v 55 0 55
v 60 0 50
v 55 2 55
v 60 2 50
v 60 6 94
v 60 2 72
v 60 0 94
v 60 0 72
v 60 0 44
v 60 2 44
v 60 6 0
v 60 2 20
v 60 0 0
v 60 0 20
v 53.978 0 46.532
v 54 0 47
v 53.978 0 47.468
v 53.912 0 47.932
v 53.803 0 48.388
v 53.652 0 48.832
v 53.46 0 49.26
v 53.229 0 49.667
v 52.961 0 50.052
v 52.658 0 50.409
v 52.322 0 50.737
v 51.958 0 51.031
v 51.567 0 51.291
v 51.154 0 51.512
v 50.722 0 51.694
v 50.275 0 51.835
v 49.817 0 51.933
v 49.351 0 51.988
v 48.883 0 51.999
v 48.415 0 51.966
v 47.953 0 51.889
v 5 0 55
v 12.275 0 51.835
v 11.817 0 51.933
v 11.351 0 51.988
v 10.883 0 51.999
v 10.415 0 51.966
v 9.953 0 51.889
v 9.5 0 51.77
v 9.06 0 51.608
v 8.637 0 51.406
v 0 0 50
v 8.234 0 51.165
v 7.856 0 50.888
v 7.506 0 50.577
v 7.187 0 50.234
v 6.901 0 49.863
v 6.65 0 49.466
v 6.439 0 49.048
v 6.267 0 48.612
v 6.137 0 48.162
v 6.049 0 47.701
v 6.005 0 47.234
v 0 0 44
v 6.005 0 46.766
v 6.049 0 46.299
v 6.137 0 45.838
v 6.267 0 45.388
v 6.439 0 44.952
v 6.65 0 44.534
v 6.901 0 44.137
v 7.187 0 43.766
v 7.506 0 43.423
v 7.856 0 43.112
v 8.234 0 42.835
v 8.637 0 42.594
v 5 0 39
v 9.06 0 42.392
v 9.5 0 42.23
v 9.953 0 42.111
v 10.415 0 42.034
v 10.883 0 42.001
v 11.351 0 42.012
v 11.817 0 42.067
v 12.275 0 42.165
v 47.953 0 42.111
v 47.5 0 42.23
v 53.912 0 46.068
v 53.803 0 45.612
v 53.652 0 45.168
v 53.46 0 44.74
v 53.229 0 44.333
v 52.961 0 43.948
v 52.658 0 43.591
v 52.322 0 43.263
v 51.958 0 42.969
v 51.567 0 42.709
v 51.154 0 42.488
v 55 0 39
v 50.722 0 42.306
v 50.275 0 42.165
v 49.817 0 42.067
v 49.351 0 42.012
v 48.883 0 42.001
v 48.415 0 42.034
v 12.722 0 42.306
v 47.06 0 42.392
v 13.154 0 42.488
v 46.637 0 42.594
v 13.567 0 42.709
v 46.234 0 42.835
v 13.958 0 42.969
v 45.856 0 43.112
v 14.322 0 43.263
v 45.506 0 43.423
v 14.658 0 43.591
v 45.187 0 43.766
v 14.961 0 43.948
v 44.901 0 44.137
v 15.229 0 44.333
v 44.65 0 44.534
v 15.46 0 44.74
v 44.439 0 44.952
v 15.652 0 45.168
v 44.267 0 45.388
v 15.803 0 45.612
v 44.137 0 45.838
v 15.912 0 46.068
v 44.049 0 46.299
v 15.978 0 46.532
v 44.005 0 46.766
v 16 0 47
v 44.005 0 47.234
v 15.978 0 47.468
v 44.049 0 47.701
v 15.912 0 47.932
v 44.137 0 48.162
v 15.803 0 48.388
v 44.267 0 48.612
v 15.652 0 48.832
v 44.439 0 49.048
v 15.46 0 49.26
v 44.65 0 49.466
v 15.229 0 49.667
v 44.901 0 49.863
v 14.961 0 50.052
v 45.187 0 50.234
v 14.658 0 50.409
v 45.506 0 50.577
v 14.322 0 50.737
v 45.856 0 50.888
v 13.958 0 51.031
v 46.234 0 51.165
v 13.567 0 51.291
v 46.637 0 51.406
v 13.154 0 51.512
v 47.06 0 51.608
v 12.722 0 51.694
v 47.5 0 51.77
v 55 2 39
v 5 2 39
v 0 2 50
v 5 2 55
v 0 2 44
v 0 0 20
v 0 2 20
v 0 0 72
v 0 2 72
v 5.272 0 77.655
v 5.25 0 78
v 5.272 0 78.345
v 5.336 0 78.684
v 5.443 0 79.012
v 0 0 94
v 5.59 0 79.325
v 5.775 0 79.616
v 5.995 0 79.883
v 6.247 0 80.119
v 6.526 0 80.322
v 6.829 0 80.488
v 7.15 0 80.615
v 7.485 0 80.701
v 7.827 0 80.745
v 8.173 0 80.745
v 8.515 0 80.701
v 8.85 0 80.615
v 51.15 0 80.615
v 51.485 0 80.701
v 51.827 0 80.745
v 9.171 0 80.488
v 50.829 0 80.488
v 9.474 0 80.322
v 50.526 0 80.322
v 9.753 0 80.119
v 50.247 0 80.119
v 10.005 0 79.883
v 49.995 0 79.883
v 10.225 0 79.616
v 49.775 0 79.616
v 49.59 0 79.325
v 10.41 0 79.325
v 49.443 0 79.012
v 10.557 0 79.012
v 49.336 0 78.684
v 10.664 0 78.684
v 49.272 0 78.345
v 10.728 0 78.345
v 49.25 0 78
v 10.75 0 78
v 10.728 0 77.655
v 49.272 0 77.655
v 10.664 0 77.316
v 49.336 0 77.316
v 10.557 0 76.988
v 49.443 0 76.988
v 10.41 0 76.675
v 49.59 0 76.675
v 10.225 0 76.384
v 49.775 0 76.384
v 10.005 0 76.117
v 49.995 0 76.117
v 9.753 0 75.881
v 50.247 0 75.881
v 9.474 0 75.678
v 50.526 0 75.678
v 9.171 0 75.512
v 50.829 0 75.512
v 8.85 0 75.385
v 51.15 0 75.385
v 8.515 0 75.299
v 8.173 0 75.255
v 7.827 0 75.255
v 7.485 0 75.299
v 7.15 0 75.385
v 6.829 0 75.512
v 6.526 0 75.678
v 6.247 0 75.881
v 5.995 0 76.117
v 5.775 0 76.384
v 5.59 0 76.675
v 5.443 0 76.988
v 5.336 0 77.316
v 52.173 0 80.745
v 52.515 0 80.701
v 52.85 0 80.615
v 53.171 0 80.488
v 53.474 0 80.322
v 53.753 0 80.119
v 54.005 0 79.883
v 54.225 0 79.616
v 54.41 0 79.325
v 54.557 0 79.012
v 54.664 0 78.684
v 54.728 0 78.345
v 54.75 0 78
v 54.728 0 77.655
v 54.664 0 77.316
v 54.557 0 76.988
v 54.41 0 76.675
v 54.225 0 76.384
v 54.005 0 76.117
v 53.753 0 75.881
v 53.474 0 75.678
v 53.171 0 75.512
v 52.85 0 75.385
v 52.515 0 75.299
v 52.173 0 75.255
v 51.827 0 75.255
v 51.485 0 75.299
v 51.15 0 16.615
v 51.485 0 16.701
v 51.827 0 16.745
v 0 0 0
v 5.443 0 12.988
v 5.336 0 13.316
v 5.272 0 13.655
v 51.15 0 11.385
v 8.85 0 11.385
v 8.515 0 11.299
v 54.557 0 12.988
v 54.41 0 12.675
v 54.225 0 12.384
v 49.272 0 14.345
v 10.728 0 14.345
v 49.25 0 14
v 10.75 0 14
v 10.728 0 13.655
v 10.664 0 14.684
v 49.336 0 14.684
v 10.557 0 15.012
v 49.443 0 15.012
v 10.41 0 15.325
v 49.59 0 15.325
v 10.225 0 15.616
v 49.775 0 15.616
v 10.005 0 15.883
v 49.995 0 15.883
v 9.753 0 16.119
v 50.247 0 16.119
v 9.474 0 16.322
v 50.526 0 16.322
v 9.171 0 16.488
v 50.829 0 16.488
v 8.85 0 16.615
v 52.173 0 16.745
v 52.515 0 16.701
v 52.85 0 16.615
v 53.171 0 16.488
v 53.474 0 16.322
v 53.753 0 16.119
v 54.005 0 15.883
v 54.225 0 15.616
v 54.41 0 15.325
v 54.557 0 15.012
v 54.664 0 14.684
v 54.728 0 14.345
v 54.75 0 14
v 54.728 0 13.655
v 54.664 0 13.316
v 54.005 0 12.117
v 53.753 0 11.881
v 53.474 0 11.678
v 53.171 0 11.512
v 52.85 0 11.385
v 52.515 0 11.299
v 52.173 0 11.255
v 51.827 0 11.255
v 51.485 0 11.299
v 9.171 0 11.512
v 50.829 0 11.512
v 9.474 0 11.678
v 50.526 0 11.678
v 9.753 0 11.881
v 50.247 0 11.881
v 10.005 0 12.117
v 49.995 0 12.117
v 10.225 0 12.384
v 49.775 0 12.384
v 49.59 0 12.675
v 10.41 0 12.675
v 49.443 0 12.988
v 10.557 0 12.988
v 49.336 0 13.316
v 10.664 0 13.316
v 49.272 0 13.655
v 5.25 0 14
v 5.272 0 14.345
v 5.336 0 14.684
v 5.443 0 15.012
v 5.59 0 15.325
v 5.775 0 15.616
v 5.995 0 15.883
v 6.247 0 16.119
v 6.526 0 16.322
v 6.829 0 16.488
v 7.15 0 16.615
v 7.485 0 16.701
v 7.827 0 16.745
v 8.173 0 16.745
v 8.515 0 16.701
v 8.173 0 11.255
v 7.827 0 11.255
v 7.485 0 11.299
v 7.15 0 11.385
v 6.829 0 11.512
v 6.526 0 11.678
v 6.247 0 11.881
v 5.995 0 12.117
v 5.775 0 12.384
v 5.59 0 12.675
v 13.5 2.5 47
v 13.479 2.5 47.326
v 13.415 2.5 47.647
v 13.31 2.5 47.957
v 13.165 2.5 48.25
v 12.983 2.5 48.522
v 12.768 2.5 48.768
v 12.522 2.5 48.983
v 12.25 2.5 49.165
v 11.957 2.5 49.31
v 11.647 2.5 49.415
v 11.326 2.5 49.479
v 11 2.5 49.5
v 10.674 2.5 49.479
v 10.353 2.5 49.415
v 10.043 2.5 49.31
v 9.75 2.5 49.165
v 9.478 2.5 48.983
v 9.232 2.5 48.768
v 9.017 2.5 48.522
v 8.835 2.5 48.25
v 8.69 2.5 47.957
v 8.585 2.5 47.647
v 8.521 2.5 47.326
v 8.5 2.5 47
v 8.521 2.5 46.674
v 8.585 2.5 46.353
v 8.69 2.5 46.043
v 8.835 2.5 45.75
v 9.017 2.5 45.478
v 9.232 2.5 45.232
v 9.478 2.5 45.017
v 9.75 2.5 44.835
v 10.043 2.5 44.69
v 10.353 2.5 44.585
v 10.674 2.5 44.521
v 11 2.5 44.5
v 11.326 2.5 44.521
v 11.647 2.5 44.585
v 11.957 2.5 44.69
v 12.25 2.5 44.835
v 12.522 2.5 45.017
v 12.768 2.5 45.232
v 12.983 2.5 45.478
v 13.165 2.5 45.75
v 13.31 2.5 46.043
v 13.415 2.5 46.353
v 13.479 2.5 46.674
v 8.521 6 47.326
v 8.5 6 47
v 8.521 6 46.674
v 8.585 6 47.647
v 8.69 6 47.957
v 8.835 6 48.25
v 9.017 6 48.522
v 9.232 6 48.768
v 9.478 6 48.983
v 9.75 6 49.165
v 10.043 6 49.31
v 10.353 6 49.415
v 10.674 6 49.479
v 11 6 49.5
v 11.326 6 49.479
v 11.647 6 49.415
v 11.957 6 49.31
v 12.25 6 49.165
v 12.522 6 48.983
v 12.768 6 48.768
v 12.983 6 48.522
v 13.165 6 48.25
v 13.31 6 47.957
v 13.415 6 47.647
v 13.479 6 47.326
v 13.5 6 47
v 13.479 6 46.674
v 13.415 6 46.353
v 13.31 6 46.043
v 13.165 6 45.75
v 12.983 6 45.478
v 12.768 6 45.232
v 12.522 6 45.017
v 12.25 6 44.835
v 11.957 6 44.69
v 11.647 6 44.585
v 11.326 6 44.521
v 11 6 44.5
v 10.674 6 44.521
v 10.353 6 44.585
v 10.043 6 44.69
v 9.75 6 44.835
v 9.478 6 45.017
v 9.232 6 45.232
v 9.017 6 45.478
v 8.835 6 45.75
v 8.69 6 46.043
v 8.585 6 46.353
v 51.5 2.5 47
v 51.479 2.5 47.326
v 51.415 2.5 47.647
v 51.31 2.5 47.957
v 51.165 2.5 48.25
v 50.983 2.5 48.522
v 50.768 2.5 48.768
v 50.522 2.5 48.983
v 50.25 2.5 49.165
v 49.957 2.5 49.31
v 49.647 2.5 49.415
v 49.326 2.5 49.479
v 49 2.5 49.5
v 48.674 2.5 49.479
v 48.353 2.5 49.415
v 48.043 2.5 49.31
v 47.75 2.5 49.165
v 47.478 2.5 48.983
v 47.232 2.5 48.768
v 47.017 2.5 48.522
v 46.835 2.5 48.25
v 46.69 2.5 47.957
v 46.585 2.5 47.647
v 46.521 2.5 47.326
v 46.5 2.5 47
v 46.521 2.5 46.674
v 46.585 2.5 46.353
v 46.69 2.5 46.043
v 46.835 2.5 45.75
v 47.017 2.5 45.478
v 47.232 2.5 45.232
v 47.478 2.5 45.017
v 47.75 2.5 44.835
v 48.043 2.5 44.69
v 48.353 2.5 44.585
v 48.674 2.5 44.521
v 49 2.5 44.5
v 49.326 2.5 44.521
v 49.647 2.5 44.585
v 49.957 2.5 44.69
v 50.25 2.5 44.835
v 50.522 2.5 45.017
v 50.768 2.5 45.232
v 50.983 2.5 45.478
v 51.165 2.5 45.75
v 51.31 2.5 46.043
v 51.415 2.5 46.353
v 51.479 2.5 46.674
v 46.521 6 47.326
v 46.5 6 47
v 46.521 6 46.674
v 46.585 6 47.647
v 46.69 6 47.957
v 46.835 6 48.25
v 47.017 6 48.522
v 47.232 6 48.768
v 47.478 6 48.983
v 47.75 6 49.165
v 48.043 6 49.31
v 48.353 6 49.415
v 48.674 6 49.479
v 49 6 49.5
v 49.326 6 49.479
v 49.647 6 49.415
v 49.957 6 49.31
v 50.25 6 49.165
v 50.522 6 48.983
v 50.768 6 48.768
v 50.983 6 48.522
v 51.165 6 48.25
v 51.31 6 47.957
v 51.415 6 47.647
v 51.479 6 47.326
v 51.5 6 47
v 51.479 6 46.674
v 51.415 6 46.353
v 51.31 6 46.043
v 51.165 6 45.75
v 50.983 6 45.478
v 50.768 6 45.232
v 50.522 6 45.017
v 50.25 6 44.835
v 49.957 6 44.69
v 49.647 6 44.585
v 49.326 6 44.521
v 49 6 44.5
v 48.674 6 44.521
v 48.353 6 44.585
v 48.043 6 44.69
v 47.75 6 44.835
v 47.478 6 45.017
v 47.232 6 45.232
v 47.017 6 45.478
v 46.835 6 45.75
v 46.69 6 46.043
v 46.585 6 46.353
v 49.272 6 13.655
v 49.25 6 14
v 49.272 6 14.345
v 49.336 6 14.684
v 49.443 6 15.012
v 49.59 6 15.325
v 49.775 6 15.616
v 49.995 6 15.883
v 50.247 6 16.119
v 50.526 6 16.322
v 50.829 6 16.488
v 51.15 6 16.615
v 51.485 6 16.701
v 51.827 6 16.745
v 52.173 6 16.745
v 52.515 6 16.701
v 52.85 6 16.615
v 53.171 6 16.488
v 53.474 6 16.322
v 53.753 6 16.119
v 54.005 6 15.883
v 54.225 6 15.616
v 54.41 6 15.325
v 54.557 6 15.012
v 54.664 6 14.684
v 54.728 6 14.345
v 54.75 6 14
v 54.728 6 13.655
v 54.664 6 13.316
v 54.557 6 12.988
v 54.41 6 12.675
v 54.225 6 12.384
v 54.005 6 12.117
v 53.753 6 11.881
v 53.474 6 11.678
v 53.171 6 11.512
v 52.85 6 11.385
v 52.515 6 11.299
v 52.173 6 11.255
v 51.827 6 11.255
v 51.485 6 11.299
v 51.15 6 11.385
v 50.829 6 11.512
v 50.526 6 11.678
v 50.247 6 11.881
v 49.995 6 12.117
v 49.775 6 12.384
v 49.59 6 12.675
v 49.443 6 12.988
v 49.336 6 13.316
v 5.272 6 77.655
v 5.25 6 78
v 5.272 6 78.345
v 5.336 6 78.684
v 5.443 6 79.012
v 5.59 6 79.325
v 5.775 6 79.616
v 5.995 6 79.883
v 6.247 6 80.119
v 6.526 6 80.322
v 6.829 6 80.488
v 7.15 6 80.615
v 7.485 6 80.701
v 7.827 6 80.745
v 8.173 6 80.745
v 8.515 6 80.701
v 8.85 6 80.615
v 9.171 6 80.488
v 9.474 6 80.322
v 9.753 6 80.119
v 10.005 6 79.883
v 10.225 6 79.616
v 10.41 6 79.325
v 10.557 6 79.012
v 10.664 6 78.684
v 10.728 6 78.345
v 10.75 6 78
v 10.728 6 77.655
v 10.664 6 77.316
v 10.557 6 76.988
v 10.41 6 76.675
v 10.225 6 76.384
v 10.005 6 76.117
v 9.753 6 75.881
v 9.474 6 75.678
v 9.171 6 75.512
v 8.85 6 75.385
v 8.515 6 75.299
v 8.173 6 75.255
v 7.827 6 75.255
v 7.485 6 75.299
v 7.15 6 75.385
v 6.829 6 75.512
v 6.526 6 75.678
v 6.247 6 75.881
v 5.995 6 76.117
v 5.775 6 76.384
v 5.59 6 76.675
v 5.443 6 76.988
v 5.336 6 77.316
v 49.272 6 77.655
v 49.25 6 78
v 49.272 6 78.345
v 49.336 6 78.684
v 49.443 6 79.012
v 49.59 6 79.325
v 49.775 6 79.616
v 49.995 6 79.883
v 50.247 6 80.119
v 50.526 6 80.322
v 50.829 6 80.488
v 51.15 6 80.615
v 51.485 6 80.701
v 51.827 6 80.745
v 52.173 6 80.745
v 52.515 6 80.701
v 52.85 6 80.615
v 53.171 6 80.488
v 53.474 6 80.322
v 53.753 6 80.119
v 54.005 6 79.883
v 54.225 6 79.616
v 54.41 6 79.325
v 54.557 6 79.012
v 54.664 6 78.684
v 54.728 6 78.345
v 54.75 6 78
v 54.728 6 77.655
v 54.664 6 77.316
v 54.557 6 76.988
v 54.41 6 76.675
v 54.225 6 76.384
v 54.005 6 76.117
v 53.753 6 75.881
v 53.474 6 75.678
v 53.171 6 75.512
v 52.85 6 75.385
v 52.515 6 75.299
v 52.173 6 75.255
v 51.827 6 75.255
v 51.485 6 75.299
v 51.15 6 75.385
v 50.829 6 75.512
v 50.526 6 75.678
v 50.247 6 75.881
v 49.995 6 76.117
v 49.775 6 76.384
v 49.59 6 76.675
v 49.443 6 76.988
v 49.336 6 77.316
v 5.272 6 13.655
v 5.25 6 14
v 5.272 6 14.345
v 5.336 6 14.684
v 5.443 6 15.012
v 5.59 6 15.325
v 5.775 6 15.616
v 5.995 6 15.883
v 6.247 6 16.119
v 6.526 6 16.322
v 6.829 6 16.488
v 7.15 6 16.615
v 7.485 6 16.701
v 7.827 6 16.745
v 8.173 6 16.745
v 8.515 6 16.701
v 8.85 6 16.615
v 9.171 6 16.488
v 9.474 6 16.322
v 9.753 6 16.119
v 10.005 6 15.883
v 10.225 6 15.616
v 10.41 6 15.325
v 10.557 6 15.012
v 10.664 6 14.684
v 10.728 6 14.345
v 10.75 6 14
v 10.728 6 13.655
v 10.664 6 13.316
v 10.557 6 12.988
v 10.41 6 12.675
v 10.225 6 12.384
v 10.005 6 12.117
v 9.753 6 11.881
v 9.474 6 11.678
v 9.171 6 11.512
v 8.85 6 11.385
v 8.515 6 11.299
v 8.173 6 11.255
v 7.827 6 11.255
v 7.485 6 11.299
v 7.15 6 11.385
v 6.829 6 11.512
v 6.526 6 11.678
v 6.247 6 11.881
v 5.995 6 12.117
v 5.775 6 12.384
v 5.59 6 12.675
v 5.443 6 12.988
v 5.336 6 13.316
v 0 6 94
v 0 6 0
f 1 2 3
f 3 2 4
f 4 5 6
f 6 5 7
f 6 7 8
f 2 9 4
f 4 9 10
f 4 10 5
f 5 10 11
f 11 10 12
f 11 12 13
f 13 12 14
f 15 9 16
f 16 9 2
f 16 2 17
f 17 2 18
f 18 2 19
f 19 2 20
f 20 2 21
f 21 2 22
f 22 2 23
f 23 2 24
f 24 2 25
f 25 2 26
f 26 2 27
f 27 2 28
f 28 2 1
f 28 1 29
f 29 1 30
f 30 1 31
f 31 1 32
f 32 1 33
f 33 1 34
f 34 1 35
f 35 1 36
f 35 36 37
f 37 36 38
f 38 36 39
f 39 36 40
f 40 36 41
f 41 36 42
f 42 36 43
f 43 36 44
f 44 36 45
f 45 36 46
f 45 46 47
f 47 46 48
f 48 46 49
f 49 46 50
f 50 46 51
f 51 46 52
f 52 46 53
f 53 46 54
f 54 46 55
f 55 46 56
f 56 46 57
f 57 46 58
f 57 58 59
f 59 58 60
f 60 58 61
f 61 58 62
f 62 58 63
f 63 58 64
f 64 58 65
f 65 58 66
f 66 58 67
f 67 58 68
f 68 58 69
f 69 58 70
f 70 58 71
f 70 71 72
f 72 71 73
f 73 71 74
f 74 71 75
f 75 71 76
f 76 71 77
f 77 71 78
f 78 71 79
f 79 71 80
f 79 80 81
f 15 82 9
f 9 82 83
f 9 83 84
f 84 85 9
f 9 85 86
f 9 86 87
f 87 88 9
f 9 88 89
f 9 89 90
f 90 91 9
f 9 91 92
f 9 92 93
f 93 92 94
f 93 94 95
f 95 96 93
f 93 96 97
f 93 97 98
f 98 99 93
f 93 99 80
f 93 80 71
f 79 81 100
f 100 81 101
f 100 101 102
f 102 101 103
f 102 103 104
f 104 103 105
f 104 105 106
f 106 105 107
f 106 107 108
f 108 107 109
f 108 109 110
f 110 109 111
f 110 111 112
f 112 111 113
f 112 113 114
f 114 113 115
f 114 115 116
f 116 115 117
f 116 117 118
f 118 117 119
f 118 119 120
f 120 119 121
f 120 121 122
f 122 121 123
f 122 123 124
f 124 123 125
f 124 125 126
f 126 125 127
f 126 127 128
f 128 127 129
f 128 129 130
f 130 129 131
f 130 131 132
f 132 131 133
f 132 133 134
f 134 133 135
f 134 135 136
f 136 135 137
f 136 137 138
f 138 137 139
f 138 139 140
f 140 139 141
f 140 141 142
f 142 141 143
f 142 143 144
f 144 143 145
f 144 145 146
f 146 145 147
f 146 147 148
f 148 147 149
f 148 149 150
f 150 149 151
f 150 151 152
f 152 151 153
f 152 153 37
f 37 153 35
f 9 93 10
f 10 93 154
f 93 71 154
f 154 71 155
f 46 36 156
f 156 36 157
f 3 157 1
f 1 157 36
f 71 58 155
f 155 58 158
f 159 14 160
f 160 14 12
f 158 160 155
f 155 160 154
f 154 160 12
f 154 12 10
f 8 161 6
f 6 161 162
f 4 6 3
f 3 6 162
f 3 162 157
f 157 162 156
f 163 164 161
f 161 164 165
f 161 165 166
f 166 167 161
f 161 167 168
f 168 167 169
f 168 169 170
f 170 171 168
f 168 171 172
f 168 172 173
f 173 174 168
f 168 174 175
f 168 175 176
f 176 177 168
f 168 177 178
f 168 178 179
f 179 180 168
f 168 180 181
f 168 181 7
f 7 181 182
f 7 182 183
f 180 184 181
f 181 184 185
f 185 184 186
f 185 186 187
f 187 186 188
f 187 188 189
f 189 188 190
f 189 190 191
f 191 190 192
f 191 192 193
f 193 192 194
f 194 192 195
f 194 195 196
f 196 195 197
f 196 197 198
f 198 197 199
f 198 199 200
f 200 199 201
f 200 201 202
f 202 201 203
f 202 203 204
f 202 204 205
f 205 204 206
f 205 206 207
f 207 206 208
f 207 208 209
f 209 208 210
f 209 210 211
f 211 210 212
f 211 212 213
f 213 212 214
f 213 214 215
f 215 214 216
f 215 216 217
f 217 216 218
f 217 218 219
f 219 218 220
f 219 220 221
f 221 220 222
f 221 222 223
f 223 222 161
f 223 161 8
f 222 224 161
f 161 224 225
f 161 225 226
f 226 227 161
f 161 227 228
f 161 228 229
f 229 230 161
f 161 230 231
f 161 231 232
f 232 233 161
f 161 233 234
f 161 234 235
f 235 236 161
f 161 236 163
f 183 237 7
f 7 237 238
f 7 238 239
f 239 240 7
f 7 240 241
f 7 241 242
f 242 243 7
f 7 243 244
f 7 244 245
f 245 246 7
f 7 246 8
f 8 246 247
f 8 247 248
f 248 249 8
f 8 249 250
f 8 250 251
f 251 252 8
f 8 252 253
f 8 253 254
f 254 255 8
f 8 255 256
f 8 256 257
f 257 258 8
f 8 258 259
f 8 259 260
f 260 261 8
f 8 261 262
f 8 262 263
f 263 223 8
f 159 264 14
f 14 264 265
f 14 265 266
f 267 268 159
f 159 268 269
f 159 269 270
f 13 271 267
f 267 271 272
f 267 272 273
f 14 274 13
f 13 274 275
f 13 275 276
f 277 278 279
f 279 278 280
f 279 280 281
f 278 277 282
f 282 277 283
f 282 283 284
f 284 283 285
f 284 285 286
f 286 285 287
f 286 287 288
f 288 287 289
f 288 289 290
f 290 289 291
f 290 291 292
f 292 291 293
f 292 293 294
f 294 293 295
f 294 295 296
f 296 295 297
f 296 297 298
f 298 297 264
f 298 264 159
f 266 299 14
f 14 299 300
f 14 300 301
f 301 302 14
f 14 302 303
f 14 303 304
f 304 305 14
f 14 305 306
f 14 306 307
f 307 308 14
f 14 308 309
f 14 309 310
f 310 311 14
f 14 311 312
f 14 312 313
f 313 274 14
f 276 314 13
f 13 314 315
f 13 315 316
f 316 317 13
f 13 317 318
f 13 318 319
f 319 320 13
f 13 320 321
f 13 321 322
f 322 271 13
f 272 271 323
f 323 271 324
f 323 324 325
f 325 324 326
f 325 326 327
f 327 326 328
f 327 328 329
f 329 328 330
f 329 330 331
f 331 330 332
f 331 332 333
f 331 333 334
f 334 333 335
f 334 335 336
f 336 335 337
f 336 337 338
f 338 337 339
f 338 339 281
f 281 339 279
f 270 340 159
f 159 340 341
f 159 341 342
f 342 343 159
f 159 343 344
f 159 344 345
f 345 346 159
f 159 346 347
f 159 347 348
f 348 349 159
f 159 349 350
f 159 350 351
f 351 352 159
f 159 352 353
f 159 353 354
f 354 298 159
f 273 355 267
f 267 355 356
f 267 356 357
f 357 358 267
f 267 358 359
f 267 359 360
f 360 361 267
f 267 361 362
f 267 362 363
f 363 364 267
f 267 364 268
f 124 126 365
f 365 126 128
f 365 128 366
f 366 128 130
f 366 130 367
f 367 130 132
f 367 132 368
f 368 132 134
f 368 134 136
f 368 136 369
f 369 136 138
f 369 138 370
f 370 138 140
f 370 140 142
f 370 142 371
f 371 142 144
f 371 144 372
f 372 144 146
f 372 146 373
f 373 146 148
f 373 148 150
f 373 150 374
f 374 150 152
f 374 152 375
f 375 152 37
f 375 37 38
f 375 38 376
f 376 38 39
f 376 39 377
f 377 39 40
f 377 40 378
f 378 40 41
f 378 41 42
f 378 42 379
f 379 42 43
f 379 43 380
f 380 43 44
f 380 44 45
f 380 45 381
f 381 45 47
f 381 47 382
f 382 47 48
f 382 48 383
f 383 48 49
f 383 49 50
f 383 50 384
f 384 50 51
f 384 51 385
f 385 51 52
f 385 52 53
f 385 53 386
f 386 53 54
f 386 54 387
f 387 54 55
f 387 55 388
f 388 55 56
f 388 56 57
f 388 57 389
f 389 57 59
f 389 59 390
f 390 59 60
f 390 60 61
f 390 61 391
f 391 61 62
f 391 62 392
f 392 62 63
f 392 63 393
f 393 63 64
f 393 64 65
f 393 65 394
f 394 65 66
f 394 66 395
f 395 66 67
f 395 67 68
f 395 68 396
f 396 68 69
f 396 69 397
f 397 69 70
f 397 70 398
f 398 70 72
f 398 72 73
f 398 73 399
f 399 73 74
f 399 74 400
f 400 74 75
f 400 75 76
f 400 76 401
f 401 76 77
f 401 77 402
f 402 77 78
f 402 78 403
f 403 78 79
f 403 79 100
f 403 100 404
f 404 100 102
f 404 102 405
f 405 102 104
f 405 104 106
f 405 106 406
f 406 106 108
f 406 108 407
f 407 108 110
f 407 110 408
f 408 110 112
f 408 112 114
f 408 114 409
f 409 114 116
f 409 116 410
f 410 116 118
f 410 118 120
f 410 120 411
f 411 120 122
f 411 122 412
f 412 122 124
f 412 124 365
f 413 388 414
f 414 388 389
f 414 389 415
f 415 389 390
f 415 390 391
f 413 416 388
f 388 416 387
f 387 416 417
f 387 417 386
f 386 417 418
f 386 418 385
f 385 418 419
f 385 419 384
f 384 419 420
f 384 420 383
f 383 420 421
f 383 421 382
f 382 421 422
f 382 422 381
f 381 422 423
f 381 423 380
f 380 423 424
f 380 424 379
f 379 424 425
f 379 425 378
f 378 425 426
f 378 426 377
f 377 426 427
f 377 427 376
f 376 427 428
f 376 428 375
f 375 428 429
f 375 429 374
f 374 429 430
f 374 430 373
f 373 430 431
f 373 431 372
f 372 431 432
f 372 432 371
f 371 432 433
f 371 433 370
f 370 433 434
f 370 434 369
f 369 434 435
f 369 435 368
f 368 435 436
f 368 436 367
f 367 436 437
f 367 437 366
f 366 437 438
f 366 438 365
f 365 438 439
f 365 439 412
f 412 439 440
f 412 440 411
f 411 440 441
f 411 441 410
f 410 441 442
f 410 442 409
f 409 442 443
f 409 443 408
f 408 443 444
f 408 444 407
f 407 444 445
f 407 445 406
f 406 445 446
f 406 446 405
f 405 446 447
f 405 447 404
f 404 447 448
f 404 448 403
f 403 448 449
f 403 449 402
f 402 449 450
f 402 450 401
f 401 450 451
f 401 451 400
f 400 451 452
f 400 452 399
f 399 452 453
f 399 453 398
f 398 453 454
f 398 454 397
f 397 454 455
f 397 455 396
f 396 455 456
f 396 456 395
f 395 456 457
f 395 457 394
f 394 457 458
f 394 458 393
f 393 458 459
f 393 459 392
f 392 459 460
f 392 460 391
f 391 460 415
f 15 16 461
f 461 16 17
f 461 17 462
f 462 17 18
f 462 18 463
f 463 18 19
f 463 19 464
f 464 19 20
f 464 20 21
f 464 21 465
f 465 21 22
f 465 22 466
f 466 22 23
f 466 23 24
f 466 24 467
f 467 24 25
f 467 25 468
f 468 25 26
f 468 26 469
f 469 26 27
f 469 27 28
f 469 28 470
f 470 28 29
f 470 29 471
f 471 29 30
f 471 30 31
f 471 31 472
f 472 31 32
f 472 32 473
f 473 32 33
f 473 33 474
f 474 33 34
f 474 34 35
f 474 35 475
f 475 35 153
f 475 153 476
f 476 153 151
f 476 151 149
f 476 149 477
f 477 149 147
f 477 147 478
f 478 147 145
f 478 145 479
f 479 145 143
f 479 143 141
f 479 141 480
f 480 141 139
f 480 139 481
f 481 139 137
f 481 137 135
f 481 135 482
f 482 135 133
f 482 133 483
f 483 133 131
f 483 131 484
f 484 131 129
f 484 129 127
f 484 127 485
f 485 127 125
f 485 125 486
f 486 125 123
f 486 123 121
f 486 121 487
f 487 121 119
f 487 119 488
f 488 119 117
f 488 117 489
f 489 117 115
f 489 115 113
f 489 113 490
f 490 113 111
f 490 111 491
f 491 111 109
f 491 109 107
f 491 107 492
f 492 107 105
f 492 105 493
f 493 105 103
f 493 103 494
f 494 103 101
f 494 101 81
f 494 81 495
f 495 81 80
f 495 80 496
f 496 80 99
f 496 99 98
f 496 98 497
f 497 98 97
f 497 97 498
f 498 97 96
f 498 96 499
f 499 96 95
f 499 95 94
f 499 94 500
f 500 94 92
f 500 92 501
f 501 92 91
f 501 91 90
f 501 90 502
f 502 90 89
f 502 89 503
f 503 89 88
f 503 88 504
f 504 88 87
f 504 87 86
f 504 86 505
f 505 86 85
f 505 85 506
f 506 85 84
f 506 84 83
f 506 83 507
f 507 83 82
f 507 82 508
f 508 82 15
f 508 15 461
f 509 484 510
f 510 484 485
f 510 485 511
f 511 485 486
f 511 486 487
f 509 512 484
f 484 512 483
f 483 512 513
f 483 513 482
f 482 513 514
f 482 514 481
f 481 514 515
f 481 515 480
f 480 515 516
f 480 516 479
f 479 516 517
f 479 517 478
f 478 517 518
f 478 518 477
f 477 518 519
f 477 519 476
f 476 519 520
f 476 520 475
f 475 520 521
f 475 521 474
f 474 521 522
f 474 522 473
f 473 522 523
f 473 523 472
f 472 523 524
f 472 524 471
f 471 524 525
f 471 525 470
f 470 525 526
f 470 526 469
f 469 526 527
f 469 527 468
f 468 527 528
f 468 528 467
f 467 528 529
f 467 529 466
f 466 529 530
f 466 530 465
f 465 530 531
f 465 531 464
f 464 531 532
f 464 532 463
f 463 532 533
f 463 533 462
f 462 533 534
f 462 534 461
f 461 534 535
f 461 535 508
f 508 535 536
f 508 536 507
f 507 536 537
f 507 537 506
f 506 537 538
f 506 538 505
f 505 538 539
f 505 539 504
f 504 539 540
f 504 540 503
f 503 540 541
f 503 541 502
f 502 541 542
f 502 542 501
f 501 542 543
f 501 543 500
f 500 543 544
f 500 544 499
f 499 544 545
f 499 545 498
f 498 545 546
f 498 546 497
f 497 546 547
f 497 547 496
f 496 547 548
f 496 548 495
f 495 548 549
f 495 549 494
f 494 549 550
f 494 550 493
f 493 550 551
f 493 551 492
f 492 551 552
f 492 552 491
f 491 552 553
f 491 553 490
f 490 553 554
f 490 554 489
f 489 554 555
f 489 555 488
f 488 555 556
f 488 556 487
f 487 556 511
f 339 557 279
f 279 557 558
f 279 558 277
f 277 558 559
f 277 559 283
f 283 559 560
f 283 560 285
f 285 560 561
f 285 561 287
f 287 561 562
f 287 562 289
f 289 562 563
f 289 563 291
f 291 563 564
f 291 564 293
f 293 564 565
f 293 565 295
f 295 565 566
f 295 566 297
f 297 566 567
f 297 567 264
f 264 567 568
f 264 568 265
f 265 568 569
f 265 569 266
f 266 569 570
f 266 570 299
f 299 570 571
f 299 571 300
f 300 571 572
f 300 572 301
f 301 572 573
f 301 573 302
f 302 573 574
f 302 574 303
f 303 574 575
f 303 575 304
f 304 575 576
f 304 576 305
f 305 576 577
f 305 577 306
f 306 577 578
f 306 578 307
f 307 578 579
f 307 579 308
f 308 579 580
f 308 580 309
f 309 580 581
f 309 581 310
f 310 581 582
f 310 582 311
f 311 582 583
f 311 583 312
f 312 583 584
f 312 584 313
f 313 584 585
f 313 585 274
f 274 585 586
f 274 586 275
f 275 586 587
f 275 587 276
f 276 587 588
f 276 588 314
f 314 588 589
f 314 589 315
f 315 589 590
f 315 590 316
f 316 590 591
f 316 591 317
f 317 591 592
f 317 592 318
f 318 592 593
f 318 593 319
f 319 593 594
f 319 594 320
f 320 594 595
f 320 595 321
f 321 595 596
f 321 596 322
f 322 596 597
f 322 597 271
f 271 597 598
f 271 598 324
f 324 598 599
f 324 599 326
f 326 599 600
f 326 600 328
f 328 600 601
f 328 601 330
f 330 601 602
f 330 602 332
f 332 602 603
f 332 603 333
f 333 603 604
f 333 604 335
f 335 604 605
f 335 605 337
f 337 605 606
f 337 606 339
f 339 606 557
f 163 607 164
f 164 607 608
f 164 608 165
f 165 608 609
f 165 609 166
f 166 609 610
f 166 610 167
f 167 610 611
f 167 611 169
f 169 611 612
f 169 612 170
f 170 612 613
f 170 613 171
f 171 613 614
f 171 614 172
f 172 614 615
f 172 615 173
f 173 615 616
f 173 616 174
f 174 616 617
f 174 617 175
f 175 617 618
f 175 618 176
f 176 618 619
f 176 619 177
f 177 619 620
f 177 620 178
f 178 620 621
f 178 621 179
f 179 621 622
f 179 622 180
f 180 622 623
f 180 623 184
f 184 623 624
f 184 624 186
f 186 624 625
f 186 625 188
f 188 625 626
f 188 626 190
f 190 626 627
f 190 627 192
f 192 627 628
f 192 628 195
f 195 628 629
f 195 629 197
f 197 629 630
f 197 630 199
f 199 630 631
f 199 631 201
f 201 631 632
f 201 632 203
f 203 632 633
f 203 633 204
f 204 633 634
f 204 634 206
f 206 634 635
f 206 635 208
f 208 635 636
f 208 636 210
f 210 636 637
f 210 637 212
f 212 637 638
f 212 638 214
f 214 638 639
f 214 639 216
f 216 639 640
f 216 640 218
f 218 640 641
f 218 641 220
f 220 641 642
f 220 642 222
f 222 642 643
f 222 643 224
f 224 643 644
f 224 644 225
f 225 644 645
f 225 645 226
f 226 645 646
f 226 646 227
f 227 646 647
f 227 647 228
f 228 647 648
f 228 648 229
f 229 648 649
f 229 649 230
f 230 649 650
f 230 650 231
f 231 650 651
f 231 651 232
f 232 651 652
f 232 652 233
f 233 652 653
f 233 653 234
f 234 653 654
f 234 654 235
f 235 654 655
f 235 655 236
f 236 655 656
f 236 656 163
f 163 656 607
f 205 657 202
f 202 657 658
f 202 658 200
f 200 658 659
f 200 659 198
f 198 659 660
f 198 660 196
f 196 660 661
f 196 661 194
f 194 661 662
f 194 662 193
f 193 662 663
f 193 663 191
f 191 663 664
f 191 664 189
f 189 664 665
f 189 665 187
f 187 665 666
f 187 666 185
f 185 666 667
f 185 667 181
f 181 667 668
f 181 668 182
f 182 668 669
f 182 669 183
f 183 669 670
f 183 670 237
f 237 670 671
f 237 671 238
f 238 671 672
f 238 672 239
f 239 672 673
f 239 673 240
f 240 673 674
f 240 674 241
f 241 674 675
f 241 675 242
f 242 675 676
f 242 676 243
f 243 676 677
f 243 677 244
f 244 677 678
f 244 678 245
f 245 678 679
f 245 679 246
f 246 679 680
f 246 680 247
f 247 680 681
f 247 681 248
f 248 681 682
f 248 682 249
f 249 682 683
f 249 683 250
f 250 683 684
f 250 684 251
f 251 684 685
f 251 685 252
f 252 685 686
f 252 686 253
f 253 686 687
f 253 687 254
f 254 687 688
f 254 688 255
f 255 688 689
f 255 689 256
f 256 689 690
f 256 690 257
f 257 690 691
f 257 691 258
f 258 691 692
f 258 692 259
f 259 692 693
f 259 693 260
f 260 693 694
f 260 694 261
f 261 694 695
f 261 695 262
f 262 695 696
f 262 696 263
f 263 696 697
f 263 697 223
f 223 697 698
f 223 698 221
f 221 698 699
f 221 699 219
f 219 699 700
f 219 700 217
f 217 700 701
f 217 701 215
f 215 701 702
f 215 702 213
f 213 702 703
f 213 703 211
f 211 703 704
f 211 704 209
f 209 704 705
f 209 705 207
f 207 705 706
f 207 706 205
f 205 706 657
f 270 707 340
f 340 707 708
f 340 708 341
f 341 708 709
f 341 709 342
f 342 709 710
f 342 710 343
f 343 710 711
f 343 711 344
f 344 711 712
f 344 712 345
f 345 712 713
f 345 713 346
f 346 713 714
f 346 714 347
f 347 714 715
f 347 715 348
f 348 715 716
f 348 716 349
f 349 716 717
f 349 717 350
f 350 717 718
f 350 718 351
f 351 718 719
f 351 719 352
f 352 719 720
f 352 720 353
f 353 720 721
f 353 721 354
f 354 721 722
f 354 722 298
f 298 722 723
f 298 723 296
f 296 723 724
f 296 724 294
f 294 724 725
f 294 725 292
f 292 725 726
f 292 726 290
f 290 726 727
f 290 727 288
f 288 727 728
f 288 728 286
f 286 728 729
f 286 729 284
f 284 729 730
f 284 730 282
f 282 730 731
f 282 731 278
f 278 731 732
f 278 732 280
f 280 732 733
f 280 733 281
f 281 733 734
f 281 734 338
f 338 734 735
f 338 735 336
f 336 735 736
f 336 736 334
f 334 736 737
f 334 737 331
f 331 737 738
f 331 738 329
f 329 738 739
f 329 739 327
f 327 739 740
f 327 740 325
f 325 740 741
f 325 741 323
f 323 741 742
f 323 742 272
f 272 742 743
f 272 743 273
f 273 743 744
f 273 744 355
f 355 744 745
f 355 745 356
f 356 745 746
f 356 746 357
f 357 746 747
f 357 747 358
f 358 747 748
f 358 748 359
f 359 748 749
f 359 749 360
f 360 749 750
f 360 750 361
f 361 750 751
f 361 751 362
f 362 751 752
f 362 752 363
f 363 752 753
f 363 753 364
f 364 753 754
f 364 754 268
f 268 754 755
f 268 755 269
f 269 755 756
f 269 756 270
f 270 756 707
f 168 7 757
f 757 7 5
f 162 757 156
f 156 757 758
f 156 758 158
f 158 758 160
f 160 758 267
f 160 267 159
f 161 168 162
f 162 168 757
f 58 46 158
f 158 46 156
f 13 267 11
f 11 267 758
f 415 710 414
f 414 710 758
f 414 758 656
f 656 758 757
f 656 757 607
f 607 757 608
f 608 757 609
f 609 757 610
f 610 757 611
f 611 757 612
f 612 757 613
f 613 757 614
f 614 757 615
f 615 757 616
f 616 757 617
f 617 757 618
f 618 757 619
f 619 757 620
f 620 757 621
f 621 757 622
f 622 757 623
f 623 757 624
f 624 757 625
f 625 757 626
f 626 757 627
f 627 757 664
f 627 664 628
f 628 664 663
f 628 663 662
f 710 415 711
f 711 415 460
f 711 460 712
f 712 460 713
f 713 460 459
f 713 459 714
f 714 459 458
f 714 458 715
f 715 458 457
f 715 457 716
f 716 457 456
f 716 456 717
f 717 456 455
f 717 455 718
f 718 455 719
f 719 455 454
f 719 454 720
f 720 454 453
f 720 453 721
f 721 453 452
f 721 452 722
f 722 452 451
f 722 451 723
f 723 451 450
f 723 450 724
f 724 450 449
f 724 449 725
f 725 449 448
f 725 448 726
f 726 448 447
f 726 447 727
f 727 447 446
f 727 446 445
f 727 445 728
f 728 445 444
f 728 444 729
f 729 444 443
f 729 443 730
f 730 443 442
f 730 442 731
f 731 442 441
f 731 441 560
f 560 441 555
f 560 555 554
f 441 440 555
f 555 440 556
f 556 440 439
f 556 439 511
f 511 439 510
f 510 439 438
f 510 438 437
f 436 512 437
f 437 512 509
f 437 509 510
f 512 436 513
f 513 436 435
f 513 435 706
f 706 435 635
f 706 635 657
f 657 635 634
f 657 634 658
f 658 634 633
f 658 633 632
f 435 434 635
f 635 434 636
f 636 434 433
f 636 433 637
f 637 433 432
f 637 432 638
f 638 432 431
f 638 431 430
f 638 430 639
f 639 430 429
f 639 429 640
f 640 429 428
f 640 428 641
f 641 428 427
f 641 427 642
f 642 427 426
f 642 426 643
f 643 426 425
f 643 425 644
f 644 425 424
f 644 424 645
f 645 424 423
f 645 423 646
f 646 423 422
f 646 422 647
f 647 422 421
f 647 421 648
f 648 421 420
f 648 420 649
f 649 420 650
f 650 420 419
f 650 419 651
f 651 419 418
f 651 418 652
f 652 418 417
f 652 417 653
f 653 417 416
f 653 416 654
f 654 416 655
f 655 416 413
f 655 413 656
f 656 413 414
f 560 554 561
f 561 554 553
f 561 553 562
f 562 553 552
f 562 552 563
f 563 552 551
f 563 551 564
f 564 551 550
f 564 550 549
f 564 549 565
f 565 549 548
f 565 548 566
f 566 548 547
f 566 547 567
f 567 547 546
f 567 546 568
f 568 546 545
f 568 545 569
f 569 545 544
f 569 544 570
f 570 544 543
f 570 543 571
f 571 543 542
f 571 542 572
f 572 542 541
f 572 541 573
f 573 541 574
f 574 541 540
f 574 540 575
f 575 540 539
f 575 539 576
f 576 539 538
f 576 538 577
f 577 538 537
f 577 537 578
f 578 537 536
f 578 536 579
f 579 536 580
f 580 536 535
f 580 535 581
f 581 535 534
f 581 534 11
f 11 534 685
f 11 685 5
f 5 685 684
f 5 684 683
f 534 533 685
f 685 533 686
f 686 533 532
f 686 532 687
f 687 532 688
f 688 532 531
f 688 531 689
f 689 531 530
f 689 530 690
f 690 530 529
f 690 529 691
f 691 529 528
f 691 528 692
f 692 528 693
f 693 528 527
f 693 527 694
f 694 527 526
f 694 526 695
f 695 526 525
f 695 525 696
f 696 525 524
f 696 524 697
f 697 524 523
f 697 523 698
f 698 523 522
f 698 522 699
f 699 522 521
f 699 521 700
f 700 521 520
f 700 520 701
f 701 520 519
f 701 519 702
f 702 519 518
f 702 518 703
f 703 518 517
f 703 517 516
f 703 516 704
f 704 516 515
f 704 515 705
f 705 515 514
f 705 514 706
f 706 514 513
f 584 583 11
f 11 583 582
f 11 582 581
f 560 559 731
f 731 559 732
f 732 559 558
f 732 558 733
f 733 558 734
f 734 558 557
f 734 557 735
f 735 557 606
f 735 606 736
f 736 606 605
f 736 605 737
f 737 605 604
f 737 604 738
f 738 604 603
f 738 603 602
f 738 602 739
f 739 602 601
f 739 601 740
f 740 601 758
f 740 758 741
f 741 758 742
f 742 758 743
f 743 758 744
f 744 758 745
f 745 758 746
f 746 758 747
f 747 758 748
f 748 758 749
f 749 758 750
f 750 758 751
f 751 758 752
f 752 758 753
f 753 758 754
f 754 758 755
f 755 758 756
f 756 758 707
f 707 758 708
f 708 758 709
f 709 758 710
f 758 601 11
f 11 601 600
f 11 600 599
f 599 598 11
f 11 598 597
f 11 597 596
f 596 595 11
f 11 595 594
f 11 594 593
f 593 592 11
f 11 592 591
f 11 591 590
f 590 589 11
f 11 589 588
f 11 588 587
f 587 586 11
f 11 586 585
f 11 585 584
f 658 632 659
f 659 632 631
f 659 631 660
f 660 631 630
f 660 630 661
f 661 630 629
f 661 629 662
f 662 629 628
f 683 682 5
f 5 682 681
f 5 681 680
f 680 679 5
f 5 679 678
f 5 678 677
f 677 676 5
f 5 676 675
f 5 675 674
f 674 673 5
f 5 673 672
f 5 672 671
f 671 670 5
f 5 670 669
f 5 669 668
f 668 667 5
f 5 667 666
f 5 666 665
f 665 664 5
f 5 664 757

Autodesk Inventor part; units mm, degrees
ref_plane "YZ Plane" through (0, 0, 0) normal (1, 0, 0) x (0, 1, 0)
ref_plane "XZ Plane" through (0, 0, 0) normal (0, 1, 0) x (-1, 0, 0)
ref_plane "XY Plane" through (0, 0, 0) normal (0, 0, 1) x (1, 0, 0)
sketch "Esquisse1" plane through (0, 0, 0) normal (0, 1, 0) x (-1, 0, 0)
  line L0 (0, 0) -> (-60, 0)
  line L1 (-60, 0) -> (-60, 94)
  line L2 (-60, 94) -> (0, 94)
  line L3 (0, 94) -> (0, 0)
  dimension "d0" = 60
  dimension "d1" = 94
extrude "Extrusion1" add sketch "Esquisse1" along normal blind 6
sketch "Esquisse2" plane through (0, 6, 0) normal (0, 1, 0) x (1, 0, 0)
  line L0 (0, -94) -> (60, -94) projected
  line L1 (60, 0) -> (0, 0) projected
  line L2 (0, 0) -> (0, -94) projected
  line L3 (60, -94) -> (60, 0) projected
  point P0 (8, -78)
  point P1 (52, -78)
  point P2 (52, -14)
  point P3 (8, -14)
  dimension "d4" = 16
  dimension "d5" = 14
  dimension "d6" = 8
  dimension "d7" = 8
hole "Perçage1" at (8, 6, 78) at (52, 6, 78) at (52, 6, 14) at (8, 6, 14) direction (0, -1, 0) diameter 5.5 end through all clearance for "Vis d'assemblage à tête hexagonale ISO 24017" size "M5" standard "ISO"
sketch "Esquisse4" plane through (0, 0, 0) normal (0, -1, 0) x (1, 0, 0)
  line L0 (0, 94) -> (0, 0) projected
  line L1 (60, 0) -> (60, 94) projected
  point P0 (11, 47)
  point P1 (49, 47)
  point P2 (0, 47)
  dimension "d15" = 11
  dimension "d16" = 11
hole "Perçage2" at (11, 0, 47) at (49, 0, 47) direction (0, 1, 0) diameter 5 end through all countersink diameter 10 countersink angle 90
sketch "Esquisse5" plane through (0, 0, 0) normal (0, -1, 0) x (1, 0, 0)
  circle A0 centre (11, 47) radius 5 projected
  circle A1 centre (49, 47) radius 5 projected
  circle A2 centre (52, 14) radius 2.75 projected
  circle A3 centre (8, 78) radius 2.75 projected
  circle A4 centre (52, 78) radius 2.75 projected
  circle A5 centre (8, 14) radius 2.75 projected
  line L0 (0, 0) -> (60, 0) projected
  line L1 (60, 0) -> (60, 94) projected
  line L2 (60, 94) -> (0, 94) projected
  line L3 (0, 94) -> (0, 0) projected
  line L4 (60, 0) -> (60, 94) projected
  line L5 (60, 72) -> (0, 72)
  line L6 (0, 72) -> (0, 55)
  line L7 (0, 55) -> (60, 55)
  line L8 (60, 55) -> (60, 72)
  line L9 (60, 39) -> (0, 39)
  line L10 (0, 39) -> (0, 20)
  line L11 (0, 20) -> (60, 20)
  line L12 (60, 20) -> (60, 39)
  dimension "d24" = 6
  dimension "d25" = 6
  dimension "d26" = 8
  dimension "d27" = 8
extrude "Extrusion2" cut sketch "Esquisse5" against normal blind 2 contours L3 L9 L1 L11 | L3 L5 L1 L7
chamfer "Chanfrein1" distance 5 angle 45 4 edges at (0, 1, 39) (0, 1, 55) (60, 1, 39) (60, 1, 55)
equation "\"d16\" = d15"
equation "\"d25\" = d24"
equation "\"d27\" = d26"
properties part number "attache_exterieur"
